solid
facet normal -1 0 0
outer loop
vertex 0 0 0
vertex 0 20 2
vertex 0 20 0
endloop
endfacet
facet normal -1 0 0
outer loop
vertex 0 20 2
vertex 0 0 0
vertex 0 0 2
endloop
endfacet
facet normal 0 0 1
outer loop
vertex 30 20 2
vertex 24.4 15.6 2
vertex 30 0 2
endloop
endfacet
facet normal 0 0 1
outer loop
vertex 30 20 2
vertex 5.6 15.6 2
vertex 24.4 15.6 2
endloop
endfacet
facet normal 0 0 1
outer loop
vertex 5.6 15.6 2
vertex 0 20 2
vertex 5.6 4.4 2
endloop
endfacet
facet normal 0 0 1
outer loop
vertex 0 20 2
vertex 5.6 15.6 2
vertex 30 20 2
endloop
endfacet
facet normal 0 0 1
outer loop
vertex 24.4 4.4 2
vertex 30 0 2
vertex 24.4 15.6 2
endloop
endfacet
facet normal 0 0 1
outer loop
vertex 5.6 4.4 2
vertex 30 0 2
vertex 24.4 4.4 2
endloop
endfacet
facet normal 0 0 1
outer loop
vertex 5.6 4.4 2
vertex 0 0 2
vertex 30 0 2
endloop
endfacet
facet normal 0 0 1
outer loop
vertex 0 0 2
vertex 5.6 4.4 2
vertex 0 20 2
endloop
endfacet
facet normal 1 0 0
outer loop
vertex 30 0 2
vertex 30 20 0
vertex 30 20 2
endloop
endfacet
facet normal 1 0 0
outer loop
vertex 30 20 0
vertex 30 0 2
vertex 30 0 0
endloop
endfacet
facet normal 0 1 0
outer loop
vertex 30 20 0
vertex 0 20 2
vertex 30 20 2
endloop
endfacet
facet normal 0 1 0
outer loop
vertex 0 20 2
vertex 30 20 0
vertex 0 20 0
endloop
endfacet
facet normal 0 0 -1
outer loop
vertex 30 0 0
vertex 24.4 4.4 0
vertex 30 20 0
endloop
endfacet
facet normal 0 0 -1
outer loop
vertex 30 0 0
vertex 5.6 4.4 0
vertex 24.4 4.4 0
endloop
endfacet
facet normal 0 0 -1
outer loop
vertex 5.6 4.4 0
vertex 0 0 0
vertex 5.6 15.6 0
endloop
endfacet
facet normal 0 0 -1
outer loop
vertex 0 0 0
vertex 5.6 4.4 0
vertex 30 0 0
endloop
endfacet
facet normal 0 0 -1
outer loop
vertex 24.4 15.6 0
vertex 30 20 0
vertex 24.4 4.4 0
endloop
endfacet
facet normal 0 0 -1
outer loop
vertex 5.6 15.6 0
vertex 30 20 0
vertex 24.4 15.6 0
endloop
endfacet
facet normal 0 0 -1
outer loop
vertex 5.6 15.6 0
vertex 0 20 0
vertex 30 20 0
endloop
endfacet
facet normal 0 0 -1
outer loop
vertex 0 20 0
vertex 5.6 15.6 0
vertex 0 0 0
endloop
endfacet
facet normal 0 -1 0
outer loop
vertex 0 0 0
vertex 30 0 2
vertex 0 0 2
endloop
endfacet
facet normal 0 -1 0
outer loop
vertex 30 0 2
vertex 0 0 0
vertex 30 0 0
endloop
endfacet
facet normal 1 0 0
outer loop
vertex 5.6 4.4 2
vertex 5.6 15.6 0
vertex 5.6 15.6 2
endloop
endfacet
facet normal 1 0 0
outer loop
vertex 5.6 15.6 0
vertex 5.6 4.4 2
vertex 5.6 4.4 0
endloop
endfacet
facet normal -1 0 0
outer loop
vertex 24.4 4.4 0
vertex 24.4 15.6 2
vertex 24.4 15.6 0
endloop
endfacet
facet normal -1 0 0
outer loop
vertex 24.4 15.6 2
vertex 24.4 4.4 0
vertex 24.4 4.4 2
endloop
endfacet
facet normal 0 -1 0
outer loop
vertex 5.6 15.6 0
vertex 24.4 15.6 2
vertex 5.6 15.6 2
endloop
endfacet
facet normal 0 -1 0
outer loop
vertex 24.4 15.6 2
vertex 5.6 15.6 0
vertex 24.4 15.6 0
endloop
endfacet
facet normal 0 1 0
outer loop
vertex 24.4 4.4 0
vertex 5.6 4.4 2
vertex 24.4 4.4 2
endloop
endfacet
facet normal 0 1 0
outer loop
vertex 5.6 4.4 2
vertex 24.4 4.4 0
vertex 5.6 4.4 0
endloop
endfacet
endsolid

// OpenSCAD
template_width = 30;
template_height = 20;
template_thickness = 2;

connector_width = 18.8;
connector_height = 11.2;

f = 0.01;
df = 2*f;

difference() {
    cube([template_width, template_height, template_thickness]);
    translate([(template_width - connector_width)/2, (template_height - connector_height)/2, -f])
        cube([connector_width, connector_height, template_thickness + df]);
}
